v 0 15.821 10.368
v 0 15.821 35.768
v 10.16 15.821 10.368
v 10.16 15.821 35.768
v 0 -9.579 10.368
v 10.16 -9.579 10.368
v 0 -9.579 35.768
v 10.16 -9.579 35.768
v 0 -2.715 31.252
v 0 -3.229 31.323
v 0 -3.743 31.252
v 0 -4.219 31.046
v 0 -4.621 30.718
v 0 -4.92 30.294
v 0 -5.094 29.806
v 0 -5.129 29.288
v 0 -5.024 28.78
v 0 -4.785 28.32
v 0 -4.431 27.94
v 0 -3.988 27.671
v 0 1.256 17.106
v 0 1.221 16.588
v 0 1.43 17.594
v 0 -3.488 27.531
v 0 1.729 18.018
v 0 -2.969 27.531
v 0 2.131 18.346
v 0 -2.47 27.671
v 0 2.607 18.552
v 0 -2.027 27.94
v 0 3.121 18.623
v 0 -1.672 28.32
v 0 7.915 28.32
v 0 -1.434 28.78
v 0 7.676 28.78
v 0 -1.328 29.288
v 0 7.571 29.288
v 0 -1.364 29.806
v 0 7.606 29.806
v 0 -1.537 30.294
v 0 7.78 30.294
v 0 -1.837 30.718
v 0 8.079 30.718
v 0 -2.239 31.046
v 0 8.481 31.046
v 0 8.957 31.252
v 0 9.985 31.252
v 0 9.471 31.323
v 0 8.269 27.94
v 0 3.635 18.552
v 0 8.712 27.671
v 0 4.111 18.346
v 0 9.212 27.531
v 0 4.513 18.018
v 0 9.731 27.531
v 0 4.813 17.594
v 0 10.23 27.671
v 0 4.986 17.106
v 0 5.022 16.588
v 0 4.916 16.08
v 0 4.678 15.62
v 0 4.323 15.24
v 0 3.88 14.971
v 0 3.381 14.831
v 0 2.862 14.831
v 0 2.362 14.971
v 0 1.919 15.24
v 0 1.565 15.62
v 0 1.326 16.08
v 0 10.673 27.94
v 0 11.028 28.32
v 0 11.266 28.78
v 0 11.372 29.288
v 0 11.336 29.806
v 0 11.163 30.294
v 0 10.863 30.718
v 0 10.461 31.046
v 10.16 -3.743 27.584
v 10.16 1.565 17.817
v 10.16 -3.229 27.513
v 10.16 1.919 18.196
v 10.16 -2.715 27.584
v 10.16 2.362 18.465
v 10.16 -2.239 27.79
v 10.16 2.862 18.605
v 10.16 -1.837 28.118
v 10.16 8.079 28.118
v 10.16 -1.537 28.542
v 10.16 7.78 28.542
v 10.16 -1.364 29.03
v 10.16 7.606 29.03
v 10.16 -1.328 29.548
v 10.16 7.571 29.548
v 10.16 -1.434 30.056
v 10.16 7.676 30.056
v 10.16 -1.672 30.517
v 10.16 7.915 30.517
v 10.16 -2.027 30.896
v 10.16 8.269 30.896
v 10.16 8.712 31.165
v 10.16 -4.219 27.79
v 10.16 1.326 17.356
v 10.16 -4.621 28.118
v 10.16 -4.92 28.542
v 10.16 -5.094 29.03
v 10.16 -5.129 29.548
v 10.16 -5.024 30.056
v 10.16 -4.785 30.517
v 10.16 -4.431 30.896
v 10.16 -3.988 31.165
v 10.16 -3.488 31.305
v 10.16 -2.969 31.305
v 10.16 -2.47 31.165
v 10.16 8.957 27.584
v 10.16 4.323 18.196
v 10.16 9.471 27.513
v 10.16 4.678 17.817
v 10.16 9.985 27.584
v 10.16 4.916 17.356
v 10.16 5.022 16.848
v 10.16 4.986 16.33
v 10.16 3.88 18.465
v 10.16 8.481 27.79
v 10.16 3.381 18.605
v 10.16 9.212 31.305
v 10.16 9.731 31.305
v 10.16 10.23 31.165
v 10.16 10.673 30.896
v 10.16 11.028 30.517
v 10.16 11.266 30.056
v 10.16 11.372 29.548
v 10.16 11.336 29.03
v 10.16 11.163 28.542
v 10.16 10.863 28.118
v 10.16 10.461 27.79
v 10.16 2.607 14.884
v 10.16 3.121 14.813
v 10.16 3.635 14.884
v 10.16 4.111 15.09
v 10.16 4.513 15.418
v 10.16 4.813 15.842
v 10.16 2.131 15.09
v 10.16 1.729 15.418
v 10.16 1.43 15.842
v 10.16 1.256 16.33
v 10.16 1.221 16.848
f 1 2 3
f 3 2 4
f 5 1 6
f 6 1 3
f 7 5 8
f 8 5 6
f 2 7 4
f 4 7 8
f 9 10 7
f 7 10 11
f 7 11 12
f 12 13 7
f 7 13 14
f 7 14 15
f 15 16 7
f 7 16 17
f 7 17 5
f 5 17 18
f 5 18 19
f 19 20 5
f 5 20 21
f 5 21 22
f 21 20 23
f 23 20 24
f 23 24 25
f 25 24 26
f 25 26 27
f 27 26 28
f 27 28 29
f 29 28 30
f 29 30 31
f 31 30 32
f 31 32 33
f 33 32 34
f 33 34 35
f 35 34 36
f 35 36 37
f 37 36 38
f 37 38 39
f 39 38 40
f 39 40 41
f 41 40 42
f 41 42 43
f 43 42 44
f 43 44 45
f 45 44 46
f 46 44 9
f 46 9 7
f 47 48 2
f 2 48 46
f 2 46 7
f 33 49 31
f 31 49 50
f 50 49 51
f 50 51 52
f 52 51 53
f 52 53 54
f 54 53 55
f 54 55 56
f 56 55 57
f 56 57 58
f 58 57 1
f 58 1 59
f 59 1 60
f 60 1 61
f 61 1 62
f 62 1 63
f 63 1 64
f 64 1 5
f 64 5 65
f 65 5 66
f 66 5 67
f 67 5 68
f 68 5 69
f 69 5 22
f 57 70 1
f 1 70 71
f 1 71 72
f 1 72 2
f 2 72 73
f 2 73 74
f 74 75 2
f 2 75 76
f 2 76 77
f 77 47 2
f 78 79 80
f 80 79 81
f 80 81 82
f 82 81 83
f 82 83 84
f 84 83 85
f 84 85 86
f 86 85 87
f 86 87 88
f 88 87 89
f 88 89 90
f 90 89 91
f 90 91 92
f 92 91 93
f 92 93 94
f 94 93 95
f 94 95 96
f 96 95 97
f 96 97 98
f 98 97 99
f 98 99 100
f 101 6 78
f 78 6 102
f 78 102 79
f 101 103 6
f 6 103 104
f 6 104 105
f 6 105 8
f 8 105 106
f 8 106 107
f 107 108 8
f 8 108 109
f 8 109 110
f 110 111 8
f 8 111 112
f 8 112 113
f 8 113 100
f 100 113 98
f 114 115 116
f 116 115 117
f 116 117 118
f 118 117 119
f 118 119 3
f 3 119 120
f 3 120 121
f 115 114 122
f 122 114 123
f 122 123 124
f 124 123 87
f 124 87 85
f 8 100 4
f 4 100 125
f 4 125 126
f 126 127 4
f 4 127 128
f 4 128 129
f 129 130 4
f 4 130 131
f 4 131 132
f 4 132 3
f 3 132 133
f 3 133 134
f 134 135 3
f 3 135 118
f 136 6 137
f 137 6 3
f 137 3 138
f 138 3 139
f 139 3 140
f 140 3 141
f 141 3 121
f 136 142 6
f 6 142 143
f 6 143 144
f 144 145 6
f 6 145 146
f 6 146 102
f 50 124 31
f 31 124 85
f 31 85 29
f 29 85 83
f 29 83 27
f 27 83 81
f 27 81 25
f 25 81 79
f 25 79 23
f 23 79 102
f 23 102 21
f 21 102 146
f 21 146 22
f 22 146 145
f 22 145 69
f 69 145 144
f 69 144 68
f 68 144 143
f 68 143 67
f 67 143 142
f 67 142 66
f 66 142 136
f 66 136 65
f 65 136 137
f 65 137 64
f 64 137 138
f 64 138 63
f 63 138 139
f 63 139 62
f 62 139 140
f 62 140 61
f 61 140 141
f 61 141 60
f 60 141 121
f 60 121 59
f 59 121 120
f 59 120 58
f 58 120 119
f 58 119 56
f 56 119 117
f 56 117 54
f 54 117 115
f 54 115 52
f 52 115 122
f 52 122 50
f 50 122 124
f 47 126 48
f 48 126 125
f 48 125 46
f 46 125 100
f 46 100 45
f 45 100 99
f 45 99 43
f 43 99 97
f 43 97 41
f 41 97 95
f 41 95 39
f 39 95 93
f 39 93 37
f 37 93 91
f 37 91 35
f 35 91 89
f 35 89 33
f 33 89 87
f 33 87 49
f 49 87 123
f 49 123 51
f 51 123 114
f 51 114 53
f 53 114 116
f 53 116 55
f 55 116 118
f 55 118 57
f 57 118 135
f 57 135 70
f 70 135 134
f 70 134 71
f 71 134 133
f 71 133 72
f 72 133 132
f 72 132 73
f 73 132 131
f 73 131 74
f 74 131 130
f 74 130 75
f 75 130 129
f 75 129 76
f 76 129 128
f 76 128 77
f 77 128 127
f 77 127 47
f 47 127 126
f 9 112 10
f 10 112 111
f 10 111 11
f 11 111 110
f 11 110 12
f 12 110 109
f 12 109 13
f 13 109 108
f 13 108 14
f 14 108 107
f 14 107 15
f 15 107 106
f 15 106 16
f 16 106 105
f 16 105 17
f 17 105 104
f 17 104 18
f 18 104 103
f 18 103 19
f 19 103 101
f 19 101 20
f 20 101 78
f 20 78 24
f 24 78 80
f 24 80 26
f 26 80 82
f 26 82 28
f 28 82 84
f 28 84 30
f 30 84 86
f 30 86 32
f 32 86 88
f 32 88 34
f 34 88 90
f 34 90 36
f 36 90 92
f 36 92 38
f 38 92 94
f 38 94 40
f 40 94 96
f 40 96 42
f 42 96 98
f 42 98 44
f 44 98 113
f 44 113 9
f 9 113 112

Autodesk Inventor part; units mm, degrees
ref_plane "YZ Plane" through (0, 0, 0) normal (1, 0, 0) x (0, 1, 0)
ref_plane "XZ Plane" through (0, 0, 0) normal (0, 1, 0) x (-1, 0, 0)
ref_plane "XY Plane" through (0, 0, 0) normal (0, 0, 1) x (1, 0, 0)
sketch "Sketch1" plane through (0, 0, 0) normal (1, 0, 0) x (0, 1, 0)
  line L0 (15.8212, 35.7681) -> (-9.5788, 35.7681)
  line L1 (-9.5788, 35.7681) -> (-9.5788, 10.3681)
  line L2 (-9.5788, 10.3681) -> (15.8212, 10.3681)
  line L3 (15.8212, 10.3681) -> (15.8212, 35.7681)
  point P0 (0, 0)
  dimension "d0" = 25.4
  dimension "d1" = 25.4
extrude "Extrusion1" add sketch "Sketch1" along normal blind 10.16
sketch "Sketch2" plane through (10.16, 0, 0) normal (1, 0, 0) x (0, 0, -1)
  line L0 (-35.7681, 15.8212) -> (-35.7681, -9.5788) projected
  line L1 (-10.3681, 15.8212) -> (-35.7681, 15.8212) projected
  line L2 (-35.7681, -9.5788) -> (-10.3681, -9.5788) projected
  point P0 (0, 0)
  point P1 (-29.4181, 9.4712)
  point P2 (-29.4181, -3.2288)
  point P3 (-16.7181, 3.1212)
  dimension "d4" = 19.05
  dimension "d5" = 12.7
  dimension "d6" = 6.35
  dimension "d7" = 6.35
  dimension "d8" = 0
  dimension "d9" = 6.35
hole "Hole1" at (10.16, 9.4712, 29.4181) at (10.16, -3.2288, 29.4181) at (10.16, 3.1212, 16.7181) direction (-1, 0, 0) diameter 3.81 depth 10.9728 tip angle 118.188 clearance for "Flat Head Machine Screw (82)" size "#6" standard "Ansi Unified Screw Threads"
properties part number "tOPgRIPPERcLAMP"
